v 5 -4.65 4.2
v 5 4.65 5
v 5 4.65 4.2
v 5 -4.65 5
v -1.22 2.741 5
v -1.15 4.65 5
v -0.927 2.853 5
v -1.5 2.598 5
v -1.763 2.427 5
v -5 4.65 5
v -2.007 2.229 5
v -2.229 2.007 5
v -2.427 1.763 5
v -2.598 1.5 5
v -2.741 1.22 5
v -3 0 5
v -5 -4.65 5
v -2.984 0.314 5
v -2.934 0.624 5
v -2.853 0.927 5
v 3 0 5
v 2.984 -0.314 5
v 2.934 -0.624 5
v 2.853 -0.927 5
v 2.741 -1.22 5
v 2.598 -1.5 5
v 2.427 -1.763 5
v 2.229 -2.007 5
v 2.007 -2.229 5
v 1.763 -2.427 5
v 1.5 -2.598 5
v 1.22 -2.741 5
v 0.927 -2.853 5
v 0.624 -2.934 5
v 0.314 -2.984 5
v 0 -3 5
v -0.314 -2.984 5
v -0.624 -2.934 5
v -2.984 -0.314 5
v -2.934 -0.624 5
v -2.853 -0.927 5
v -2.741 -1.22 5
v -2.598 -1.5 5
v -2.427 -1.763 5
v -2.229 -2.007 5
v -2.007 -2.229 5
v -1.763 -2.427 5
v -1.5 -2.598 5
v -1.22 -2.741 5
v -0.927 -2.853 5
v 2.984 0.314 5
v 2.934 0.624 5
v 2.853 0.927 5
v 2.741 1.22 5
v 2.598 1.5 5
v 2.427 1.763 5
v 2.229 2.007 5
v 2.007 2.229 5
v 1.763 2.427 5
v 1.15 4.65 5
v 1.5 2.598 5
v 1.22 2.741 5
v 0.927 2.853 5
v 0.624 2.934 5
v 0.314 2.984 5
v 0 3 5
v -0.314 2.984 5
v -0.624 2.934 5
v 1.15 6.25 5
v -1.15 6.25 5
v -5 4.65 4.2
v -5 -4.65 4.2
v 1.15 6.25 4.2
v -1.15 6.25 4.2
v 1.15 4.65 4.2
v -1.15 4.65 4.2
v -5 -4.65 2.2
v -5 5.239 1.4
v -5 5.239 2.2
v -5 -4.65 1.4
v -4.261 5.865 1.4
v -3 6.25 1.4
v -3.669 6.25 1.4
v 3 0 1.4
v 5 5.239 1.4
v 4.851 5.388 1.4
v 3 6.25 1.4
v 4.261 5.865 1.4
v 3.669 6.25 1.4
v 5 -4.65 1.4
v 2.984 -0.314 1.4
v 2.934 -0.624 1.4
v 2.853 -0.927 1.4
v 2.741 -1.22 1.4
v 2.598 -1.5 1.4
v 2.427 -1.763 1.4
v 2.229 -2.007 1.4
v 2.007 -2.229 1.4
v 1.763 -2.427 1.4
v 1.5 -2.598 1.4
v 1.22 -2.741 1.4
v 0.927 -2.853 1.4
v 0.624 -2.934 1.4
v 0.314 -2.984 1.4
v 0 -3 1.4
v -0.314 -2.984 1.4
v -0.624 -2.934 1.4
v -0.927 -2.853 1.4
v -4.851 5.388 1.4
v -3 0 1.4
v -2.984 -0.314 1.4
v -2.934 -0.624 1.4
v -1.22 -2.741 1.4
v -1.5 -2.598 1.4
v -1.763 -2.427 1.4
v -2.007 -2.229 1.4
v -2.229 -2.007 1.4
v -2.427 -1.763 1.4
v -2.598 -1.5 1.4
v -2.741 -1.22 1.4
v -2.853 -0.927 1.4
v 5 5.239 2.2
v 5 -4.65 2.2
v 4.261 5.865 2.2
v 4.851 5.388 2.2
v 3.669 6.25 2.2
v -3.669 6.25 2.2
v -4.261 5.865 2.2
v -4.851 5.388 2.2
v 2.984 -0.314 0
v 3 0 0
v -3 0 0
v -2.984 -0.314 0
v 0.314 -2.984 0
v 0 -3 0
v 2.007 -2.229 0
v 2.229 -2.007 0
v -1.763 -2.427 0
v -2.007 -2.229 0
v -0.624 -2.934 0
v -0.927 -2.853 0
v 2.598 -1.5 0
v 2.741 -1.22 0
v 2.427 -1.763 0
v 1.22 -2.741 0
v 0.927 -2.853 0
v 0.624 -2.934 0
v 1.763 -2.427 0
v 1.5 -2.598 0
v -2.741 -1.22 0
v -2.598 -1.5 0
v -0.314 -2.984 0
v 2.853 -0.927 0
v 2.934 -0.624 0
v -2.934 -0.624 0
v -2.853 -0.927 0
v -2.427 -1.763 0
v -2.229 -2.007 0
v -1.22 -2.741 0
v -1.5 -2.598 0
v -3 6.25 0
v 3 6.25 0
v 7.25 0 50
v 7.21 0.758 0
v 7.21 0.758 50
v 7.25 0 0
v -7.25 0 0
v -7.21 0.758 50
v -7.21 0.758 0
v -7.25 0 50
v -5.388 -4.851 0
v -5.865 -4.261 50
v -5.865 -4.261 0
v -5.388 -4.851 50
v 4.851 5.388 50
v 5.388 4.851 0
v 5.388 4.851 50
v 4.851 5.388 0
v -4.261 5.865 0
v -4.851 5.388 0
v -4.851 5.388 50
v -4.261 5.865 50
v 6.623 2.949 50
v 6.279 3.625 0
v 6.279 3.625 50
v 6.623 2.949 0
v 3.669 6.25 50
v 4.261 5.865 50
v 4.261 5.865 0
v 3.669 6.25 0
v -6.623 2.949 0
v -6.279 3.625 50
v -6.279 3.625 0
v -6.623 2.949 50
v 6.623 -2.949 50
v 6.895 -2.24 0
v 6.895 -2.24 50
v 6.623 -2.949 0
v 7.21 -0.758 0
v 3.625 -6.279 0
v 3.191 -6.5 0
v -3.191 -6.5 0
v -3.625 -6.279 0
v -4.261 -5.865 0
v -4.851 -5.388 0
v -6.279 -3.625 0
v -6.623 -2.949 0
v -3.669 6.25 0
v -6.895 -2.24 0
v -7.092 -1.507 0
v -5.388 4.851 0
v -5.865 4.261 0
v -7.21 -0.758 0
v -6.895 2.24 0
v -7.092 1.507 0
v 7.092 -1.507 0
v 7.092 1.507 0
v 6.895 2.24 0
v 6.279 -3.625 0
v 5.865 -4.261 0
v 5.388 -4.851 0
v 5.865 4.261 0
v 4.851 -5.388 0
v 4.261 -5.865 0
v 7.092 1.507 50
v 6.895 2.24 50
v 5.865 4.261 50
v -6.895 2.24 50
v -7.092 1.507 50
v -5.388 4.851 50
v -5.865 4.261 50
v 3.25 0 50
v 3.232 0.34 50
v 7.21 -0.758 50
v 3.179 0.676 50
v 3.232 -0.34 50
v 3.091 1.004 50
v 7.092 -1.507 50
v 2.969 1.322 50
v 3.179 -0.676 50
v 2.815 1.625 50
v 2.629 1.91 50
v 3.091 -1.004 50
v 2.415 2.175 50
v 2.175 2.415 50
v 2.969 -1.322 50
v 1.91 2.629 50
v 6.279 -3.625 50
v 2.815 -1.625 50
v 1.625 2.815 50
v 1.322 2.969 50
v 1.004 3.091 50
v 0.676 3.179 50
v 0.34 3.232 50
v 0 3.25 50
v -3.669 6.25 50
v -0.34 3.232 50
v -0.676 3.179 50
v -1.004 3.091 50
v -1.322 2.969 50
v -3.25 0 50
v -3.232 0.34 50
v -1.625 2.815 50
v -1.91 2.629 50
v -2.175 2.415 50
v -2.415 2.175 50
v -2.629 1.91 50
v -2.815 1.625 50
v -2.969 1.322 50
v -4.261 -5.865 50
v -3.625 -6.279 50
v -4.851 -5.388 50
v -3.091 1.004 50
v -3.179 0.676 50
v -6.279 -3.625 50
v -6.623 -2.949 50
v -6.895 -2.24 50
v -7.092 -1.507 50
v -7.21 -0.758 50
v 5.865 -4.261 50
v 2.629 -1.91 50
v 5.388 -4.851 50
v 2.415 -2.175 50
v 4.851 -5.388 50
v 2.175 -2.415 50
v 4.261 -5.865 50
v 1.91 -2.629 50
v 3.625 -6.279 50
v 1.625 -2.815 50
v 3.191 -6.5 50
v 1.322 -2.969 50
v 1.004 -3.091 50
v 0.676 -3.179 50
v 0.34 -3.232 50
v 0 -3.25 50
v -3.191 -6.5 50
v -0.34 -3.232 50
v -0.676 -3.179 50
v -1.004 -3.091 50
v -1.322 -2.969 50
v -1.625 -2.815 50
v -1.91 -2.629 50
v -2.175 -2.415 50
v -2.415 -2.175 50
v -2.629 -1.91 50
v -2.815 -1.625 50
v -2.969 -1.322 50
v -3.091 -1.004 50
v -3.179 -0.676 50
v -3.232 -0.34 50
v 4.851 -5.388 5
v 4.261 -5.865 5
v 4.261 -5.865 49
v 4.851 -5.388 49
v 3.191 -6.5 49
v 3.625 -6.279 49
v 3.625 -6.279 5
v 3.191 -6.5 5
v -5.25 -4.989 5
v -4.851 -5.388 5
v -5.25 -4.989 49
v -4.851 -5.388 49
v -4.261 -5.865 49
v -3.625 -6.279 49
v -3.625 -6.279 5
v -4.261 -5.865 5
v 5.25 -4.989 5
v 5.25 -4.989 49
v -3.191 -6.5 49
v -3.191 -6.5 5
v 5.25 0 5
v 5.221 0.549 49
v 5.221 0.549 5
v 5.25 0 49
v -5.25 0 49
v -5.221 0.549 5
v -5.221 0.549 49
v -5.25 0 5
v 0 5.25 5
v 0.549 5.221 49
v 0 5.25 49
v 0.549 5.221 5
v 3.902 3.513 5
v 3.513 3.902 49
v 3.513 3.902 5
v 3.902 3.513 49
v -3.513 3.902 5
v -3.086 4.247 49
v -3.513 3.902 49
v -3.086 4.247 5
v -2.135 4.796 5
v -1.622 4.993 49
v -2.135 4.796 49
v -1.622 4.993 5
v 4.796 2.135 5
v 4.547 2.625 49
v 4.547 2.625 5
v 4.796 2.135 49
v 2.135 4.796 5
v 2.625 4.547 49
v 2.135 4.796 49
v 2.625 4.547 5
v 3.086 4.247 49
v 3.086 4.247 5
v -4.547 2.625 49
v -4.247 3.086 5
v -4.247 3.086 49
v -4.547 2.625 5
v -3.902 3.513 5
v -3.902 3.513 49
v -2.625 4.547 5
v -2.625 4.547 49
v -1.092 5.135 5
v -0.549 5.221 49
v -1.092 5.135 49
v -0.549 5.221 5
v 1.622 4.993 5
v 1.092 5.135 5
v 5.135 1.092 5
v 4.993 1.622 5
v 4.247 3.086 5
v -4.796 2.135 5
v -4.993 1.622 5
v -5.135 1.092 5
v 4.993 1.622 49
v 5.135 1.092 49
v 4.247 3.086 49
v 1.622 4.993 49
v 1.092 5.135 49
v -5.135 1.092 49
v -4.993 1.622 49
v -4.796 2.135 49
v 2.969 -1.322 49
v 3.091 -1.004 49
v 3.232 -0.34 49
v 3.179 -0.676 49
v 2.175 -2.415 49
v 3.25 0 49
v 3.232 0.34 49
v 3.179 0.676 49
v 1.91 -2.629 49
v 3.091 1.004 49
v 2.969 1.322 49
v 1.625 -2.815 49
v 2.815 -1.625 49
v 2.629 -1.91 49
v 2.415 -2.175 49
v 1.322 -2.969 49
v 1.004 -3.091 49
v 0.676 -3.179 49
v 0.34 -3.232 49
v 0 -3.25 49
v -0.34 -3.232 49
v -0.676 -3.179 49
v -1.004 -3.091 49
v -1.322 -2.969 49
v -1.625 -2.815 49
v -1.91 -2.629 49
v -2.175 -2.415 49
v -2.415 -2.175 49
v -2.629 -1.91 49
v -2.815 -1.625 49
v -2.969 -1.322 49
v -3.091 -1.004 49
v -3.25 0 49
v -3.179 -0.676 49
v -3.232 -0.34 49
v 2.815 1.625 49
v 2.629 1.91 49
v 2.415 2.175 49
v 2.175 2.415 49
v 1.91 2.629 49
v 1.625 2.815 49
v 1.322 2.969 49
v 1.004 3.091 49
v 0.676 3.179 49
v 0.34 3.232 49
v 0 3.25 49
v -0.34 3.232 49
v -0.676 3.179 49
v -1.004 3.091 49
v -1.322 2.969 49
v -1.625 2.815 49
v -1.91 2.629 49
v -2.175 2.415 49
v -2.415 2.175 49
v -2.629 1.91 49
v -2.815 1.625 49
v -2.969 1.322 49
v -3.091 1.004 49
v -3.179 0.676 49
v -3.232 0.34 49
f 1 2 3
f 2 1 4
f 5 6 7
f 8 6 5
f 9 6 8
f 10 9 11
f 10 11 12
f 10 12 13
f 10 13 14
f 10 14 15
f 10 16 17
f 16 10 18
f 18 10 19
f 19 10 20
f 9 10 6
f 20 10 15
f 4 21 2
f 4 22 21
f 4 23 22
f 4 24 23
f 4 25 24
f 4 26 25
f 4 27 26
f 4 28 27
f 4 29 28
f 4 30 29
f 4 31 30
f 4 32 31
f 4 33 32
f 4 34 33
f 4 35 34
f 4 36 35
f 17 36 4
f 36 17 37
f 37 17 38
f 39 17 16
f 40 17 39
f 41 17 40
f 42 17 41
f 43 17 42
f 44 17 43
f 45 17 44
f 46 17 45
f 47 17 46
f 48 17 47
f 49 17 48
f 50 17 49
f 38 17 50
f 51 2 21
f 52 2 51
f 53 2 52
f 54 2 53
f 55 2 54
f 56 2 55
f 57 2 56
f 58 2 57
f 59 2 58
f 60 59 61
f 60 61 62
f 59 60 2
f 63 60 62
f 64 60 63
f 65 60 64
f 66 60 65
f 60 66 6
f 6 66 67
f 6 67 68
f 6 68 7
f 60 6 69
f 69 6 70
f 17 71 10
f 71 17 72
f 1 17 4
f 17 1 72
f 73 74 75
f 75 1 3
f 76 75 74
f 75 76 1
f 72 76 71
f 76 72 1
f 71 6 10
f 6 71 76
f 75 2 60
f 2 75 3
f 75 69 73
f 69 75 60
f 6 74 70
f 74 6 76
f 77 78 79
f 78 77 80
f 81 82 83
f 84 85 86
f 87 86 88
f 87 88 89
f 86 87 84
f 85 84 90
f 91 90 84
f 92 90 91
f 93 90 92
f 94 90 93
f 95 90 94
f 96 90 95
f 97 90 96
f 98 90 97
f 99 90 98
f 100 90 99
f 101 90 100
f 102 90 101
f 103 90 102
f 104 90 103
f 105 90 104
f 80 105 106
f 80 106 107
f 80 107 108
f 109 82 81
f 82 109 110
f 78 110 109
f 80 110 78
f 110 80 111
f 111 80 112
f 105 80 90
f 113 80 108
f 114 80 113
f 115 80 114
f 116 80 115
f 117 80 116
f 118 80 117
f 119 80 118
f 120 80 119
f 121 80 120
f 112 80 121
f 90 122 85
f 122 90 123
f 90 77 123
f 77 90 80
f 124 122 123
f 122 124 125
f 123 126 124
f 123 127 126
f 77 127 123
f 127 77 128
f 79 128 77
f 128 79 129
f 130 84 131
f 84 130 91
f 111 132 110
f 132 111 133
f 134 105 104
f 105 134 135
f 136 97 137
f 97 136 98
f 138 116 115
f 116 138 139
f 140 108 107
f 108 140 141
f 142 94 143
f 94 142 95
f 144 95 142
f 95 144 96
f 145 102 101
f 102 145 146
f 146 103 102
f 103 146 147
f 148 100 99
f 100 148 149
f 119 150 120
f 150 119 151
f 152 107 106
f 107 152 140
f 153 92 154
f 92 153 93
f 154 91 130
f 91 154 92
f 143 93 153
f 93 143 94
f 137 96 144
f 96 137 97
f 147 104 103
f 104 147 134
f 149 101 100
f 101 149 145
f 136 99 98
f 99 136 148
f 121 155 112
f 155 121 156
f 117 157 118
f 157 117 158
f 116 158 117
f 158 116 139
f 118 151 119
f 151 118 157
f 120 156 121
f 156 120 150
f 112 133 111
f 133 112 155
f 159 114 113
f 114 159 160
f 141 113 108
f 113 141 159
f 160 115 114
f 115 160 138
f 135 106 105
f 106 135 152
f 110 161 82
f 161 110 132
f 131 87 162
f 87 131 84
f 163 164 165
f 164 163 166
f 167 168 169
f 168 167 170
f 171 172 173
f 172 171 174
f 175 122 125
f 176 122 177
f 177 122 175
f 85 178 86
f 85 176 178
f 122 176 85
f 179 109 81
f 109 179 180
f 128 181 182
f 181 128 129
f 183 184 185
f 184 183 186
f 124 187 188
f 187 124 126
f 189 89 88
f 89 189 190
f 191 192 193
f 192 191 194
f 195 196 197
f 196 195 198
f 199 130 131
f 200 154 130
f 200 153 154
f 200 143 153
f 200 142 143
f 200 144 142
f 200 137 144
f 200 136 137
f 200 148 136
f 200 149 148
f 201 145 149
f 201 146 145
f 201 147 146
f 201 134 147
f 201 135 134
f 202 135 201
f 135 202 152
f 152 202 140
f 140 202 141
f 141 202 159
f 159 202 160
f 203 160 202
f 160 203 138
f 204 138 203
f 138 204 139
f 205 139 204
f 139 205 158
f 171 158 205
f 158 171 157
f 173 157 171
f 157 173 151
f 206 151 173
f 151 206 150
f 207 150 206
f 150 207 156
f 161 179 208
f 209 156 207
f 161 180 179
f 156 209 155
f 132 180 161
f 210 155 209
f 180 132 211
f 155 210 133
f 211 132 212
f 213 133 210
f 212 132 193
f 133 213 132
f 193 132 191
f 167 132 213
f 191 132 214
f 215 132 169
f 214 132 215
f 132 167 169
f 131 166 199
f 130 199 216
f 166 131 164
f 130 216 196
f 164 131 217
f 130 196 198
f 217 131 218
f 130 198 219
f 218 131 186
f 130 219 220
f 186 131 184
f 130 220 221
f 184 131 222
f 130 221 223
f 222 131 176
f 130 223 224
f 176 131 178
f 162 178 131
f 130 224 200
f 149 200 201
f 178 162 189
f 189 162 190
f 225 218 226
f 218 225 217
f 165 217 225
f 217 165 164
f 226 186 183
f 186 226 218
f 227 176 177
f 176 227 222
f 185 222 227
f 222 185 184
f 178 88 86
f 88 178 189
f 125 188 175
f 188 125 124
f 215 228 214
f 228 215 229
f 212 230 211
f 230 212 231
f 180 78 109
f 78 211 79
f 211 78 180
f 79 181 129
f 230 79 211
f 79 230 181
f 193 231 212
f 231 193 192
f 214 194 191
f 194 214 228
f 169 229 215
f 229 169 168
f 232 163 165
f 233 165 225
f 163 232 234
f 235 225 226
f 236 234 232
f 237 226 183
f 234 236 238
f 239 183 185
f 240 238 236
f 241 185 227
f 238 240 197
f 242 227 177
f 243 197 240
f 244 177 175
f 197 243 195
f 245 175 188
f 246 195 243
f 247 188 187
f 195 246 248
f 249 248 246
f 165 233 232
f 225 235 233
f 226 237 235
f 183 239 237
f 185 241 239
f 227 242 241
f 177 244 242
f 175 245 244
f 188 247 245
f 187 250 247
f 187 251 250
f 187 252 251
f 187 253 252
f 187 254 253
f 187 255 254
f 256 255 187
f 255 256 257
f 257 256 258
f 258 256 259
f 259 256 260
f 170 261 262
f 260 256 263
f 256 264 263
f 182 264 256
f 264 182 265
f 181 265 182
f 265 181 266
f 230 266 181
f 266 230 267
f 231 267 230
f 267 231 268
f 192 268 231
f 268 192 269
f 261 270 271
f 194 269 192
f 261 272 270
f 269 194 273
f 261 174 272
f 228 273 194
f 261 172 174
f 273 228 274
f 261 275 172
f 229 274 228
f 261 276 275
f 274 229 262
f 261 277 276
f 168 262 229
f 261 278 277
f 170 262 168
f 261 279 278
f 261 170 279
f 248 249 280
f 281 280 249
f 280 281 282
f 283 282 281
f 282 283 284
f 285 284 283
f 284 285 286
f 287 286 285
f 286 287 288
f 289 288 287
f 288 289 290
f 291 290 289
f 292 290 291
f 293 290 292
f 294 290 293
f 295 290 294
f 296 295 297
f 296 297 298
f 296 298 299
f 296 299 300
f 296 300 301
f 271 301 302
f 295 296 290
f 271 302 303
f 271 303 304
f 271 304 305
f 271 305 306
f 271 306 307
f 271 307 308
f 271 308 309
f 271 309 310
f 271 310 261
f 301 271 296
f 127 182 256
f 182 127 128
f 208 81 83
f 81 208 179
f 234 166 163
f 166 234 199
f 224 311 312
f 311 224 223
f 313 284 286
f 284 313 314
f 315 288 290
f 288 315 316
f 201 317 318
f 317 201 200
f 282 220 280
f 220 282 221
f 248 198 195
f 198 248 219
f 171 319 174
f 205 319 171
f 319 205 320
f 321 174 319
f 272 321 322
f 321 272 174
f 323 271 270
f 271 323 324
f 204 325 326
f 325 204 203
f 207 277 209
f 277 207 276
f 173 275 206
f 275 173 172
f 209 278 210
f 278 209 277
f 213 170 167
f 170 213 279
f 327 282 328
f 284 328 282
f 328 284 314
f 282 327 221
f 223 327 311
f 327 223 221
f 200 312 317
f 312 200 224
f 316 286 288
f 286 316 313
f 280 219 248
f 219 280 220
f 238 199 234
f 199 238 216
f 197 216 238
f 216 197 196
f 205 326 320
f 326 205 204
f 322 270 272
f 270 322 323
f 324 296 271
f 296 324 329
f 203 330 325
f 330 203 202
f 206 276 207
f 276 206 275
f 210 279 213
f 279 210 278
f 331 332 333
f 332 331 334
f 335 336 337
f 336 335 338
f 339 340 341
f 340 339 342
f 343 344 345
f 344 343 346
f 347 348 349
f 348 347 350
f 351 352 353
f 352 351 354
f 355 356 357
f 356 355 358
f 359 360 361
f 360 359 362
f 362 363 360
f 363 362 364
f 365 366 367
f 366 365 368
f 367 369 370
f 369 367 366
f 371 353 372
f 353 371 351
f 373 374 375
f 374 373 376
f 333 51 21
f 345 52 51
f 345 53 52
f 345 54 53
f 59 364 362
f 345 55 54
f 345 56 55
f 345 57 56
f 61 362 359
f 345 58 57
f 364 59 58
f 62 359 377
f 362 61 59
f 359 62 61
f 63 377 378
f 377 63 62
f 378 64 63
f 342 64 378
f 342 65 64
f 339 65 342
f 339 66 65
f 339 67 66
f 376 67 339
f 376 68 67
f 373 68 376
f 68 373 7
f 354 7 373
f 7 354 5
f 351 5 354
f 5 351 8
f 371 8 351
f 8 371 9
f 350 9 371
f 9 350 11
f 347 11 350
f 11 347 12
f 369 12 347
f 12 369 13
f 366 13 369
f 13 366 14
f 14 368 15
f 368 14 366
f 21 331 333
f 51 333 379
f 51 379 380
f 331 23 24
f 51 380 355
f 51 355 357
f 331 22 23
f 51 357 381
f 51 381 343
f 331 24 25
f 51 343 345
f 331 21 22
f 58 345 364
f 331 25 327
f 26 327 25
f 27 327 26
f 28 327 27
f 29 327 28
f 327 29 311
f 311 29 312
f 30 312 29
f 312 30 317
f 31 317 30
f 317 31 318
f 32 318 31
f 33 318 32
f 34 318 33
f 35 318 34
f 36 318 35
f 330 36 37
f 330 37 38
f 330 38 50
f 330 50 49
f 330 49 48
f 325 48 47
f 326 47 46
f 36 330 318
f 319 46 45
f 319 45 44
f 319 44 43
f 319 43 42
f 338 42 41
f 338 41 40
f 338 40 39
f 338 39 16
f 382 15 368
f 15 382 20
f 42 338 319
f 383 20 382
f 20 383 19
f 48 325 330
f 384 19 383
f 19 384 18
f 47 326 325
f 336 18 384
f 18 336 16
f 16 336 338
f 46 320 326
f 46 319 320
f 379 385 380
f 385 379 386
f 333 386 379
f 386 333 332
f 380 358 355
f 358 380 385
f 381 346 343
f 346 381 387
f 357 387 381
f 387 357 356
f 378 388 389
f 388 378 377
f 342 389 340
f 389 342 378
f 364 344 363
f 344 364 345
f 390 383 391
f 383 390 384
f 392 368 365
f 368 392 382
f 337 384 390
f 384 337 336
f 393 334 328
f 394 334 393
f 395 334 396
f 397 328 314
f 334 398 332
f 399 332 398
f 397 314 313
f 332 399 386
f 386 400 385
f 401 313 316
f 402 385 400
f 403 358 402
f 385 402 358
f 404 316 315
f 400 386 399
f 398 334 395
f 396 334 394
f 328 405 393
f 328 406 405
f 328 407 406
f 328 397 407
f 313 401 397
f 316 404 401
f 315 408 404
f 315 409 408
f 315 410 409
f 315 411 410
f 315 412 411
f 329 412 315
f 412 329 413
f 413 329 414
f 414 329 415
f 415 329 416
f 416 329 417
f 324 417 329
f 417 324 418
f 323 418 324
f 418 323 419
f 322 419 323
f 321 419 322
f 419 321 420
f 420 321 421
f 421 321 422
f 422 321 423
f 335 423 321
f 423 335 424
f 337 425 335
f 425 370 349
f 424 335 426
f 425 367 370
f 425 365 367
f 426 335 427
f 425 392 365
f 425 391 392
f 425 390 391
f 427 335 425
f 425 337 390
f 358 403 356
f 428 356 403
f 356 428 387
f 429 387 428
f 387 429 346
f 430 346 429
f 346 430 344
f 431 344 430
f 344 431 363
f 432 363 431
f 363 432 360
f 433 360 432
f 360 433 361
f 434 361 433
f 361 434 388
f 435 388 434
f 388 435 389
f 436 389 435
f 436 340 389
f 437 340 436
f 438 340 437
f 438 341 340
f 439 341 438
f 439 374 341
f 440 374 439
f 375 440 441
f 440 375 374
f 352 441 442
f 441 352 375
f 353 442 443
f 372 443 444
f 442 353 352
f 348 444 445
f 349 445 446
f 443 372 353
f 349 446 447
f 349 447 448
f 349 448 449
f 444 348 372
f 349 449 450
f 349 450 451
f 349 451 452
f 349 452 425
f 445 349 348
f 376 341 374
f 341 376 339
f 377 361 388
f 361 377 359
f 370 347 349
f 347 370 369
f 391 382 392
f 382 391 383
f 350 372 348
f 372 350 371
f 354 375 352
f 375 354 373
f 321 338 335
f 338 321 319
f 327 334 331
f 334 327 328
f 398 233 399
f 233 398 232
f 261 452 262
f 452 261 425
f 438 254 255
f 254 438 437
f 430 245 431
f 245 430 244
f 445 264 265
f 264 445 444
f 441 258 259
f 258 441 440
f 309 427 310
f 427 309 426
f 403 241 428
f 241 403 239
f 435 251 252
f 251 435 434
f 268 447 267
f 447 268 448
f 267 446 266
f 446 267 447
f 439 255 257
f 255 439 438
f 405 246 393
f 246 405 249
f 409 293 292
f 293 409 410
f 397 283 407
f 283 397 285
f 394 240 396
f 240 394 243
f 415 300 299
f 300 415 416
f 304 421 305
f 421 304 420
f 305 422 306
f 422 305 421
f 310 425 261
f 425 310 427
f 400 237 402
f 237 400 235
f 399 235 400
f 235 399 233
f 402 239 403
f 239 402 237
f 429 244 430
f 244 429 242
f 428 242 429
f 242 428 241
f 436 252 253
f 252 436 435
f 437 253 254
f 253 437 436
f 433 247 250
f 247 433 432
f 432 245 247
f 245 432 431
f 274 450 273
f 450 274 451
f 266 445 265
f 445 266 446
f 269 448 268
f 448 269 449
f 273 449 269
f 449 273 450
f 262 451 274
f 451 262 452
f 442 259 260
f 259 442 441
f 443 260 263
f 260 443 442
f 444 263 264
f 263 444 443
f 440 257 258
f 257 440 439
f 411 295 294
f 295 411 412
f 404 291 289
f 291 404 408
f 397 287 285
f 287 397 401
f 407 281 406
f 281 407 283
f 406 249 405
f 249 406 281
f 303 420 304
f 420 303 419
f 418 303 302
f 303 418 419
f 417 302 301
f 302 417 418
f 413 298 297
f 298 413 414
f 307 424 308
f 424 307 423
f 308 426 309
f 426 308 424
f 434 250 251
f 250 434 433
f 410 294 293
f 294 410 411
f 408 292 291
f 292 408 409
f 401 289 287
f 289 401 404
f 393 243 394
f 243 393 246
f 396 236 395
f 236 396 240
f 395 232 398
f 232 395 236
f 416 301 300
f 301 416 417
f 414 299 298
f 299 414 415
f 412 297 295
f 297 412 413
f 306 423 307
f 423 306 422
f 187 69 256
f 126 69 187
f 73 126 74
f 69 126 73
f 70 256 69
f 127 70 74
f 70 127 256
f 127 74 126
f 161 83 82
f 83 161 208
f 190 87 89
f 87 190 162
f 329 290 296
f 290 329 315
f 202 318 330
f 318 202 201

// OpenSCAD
include <BOSL/constants.scad>
use <BOSL/shapes.scad>
use <BOSL/transforms.scad>

//positive terminal minimum 1.0mm (included in height) -- max 5.5mm
//negative terminal minimum diameter 7mm
hAA=50;
dAA=14+0.5;

//positive terminal minimum 0.8mm (included in height) -- max 3.8mm
//negative terminal minimum diamter 3.8mm
hAAA=44.5-0.5;
dAAA=10.5;

//Metal Battery Spring Terminals
//additions are for "wiggle room"
slotWidthX = 9.7 + 0.3;
slotDepthY=9.0 + 0.3;
slotThicknessZ=0.40 + 0.40; // metal tab only -- does not count negative spring or positive bump!
tabWidthX=2.3;
tabDepthY=6.0;
tabOffset=0; // in degrees 

//General variables
$fn=60; //circle smoothness
overlap = 1.00; // overlap ensures that subtractions go beyond the edges

difference() {

  //Overall shape (of a AA battery)
  AA();

  //Subtract out space for the AAA
  up(hAA-hAAA-1) AAA();
  up(hAA-hAAA-1) forward(dAAA/2) AAAopening();

  //Positive pole hole
  up(hAA-1) color("green") cyl(d=6.5, h=1, align=V_UP); // hole at top for battery positive to poke through at

  //spring insert for negative pole of battery
  up(hAA-hAAA-1-slotThicknessZ) zrot(180-tabOffset) slot();
  
  up(hAA-hAAA-3-slotThicknessZ) zrot(tabOffset) xrot(180) slot();  
  up(hAA-hAAA-3-slotThicknessZ) zrot(tabOffset) xrot(180) slotopening();  
  
  //Flatten holder
  back((dAA/2)+0.0) color("gray") cuboid([dAA, 2, hAA], align=V_UP); //flatten back
  forward((dAA/2)+0.25) color("gray") cuboid([dAA, 2, hAA], align=V_UP); //flatten front
}
  
 //preview
 //up(hAA+10)   slot();

module AA() { 
  color("orange") cyl(d=dAA, h=hAA, align=V_UP); 
}

module AAA() { 
  color("gold") cyl(d=dAAA, h=hAAA, align=V_UP); 
}

module AAAopening() { 
  color("khaki") cuboid([dAAA, dAAA , hAAA], align=V_UP); 
}

module slot() { 
  color("magenta") cuboid([slotWidthX, slotDepthY, slotThicknessZ], align=V_UP);
  color("deeppink") cyl(d=6, h=slotThicknessZ+1.6, align=V_UP);
  forward((slotDepthY/2)+(tabDepthY/2)) color("hotpink") cuboid([tabWidthX, tabDepthY, slotThicknessZ], align=V_UP);
  //slotopening();
}

module slotopening() {
  forward(dAA/2) color("pink") cuboid([slotWidthX, dAA, slotThicknessZ], align=V_UP);
  forward(dAA/2) color("lightpink") cuboid([6, dAA, slotThicknessZ+1.6], align=V_UP);
}
